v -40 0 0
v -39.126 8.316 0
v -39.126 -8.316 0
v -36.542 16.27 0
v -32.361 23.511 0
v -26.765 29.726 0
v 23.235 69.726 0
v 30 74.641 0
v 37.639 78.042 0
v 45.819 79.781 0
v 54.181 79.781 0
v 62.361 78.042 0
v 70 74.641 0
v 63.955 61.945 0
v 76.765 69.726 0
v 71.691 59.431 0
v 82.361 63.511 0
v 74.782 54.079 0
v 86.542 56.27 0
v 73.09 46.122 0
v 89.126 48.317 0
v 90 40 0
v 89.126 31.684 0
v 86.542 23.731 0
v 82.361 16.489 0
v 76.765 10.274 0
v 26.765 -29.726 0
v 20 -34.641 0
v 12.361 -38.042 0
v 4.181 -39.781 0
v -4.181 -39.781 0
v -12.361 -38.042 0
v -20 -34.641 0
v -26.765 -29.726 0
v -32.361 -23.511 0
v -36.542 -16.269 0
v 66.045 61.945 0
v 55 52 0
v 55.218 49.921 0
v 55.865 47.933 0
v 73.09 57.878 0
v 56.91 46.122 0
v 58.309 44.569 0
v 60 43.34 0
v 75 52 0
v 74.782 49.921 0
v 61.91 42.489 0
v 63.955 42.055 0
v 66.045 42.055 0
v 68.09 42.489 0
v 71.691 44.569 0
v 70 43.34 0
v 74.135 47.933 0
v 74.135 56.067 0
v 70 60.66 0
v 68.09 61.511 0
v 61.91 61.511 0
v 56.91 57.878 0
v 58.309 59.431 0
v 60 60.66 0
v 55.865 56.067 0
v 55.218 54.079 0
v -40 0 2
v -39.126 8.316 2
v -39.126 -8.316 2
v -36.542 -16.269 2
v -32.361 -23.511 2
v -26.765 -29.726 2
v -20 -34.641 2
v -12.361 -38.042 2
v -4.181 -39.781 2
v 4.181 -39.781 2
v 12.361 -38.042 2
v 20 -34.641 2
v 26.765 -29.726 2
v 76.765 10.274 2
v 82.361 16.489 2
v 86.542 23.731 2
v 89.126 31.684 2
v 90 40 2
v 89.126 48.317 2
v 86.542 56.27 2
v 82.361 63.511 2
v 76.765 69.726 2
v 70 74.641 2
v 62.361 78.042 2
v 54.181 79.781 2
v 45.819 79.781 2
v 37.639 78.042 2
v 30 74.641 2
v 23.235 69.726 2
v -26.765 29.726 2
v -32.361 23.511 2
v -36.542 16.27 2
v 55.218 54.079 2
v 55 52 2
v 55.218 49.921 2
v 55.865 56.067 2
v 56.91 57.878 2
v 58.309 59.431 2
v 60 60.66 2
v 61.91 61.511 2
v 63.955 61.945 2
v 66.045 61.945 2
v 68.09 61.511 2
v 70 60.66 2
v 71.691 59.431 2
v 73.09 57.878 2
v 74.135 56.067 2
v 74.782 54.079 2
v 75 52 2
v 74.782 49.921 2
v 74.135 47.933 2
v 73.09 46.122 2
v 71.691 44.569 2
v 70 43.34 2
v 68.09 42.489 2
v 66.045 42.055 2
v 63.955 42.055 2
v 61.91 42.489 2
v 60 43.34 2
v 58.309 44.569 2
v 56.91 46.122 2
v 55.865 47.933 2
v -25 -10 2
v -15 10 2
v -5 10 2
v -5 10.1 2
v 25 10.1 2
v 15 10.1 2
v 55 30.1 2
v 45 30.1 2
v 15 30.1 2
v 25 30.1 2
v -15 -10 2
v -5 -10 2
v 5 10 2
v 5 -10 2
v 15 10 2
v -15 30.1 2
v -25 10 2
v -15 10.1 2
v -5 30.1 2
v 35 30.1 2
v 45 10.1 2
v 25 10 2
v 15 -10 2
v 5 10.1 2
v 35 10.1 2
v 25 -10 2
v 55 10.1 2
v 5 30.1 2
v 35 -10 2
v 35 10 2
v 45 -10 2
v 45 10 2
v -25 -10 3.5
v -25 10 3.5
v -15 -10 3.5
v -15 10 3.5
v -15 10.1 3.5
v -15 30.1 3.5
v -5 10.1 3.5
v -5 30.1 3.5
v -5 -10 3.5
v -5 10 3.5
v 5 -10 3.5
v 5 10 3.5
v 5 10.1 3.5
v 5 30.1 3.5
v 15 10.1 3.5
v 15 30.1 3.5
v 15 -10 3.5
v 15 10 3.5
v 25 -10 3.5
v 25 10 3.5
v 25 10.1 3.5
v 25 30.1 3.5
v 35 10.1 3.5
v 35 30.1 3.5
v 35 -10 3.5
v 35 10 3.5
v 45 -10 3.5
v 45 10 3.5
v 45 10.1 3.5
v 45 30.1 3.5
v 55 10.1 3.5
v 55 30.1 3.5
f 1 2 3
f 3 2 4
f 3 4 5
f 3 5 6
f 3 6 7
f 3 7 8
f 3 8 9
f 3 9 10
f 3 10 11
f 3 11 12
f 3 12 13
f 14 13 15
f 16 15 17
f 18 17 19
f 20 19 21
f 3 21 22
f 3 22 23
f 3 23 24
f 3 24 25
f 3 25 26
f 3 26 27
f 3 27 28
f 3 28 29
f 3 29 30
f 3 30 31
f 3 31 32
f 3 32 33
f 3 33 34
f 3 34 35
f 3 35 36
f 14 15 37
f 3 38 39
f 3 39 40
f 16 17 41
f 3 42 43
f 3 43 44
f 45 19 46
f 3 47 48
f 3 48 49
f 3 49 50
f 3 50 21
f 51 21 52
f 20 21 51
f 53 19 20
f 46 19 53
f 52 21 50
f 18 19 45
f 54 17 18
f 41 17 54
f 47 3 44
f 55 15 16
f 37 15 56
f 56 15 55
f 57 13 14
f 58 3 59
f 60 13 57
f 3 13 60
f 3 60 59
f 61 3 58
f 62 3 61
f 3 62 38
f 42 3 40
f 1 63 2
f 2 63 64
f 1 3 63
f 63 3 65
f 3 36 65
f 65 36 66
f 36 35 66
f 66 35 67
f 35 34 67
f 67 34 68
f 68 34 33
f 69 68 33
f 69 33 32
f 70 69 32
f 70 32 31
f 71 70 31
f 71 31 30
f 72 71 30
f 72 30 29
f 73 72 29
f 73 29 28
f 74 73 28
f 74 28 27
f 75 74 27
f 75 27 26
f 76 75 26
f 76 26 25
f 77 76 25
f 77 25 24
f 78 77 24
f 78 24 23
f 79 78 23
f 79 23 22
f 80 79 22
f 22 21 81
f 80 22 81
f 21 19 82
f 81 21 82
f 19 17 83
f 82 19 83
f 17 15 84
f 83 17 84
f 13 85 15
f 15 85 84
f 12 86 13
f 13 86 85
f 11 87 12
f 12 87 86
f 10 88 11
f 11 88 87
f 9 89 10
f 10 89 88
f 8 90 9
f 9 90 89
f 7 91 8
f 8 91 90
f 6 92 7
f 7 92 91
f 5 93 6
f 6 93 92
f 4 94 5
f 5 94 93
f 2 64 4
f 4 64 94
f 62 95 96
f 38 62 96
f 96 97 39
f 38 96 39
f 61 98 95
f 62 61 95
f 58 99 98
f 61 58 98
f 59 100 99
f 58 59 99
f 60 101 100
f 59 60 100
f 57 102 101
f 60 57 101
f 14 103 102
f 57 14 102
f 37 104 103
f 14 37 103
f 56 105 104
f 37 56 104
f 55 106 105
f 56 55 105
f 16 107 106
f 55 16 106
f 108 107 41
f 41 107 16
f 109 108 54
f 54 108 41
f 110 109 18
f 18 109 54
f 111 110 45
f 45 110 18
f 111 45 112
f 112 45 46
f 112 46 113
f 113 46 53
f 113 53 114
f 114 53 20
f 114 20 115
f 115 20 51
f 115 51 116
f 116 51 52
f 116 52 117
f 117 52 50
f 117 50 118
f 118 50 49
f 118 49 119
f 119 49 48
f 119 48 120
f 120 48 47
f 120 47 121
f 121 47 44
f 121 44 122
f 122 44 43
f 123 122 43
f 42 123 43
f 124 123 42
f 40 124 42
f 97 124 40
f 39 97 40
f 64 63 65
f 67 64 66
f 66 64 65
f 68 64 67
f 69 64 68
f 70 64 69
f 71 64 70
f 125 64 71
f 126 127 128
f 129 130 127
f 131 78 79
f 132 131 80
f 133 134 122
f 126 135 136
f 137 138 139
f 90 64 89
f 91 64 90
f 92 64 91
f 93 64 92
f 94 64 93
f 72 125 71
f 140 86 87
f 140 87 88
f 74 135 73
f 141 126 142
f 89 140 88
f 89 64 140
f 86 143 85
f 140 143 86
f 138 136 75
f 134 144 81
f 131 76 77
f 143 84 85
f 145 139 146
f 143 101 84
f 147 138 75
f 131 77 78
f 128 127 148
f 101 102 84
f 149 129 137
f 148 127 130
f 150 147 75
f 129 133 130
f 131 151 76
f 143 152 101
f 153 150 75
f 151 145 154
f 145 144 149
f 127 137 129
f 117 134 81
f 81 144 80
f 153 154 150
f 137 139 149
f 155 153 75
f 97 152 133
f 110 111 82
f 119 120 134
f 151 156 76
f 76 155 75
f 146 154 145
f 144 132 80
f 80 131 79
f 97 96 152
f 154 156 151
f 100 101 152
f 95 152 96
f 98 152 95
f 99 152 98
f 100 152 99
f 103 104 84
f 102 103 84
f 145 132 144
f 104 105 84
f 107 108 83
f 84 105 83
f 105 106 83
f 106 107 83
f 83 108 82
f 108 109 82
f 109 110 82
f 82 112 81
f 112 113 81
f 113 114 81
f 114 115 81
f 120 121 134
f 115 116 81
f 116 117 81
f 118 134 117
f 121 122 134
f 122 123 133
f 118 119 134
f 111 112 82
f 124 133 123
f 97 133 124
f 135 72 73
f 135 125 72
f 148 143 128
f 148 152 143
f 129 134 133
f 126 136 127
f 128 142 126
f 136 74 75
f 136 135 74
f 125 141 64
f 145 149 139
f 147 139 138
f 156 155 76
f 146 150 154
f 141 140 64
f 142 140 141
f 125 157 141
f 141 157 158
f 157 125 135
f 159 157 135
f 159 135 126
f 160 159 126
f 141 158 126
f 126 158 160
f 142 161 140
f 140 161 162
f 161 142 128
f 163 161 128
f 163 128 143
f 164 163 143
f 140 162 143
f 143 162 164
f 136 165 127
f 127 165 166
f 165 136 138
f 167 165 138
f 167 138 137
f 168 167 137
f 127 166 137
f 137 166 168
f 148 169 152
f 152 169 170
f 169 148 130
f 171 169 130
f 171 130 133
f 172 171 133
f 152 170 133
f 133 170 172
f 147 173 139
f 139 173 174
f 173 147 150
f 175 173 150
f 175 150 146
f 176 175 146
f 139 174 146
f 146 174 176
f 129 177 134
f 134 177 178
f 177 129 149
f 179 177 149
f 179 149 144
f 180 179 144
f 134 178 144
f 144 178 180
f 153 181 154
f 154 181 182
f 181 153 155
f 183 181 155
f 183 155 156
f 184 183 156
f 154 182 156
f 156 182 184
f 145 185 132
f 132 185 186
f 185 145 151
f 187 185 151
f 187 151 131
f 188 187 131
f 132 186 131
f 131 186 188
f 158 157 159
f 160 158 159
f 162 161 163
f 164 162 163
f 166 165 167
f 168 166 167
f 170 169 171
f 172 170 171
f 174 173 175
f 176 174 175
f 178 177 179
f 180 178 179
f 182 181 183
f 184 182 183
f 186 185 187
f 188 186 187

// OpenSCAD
color("blue")

difference(){
hull(){
	translate([50,40,0]) cylinder(h=2, r=40);
	cylinder(h=2, r=40);
}
translate([65,52,0]) cylinder(h=5,r=10, center=true);
}

translate([0,0,2]) cube([10,20,3], center=true);

translate([10,20.1,2]) cube([10,20,3], center=true);

translate([20,0,2]) cube([10,20,3], center=true);

translate([30,20.1,2]) cube([10,20,3], center=true);

translate([40,0,2]) cube([10,20,3], center=true);

translate([50,20.1,2]) cube([10,20,3], center=true);

translate([-10,20.1,2]) cube([10,20,3], center=true);

translate([-20,0,2]) cube([10,20,3], center=true);
